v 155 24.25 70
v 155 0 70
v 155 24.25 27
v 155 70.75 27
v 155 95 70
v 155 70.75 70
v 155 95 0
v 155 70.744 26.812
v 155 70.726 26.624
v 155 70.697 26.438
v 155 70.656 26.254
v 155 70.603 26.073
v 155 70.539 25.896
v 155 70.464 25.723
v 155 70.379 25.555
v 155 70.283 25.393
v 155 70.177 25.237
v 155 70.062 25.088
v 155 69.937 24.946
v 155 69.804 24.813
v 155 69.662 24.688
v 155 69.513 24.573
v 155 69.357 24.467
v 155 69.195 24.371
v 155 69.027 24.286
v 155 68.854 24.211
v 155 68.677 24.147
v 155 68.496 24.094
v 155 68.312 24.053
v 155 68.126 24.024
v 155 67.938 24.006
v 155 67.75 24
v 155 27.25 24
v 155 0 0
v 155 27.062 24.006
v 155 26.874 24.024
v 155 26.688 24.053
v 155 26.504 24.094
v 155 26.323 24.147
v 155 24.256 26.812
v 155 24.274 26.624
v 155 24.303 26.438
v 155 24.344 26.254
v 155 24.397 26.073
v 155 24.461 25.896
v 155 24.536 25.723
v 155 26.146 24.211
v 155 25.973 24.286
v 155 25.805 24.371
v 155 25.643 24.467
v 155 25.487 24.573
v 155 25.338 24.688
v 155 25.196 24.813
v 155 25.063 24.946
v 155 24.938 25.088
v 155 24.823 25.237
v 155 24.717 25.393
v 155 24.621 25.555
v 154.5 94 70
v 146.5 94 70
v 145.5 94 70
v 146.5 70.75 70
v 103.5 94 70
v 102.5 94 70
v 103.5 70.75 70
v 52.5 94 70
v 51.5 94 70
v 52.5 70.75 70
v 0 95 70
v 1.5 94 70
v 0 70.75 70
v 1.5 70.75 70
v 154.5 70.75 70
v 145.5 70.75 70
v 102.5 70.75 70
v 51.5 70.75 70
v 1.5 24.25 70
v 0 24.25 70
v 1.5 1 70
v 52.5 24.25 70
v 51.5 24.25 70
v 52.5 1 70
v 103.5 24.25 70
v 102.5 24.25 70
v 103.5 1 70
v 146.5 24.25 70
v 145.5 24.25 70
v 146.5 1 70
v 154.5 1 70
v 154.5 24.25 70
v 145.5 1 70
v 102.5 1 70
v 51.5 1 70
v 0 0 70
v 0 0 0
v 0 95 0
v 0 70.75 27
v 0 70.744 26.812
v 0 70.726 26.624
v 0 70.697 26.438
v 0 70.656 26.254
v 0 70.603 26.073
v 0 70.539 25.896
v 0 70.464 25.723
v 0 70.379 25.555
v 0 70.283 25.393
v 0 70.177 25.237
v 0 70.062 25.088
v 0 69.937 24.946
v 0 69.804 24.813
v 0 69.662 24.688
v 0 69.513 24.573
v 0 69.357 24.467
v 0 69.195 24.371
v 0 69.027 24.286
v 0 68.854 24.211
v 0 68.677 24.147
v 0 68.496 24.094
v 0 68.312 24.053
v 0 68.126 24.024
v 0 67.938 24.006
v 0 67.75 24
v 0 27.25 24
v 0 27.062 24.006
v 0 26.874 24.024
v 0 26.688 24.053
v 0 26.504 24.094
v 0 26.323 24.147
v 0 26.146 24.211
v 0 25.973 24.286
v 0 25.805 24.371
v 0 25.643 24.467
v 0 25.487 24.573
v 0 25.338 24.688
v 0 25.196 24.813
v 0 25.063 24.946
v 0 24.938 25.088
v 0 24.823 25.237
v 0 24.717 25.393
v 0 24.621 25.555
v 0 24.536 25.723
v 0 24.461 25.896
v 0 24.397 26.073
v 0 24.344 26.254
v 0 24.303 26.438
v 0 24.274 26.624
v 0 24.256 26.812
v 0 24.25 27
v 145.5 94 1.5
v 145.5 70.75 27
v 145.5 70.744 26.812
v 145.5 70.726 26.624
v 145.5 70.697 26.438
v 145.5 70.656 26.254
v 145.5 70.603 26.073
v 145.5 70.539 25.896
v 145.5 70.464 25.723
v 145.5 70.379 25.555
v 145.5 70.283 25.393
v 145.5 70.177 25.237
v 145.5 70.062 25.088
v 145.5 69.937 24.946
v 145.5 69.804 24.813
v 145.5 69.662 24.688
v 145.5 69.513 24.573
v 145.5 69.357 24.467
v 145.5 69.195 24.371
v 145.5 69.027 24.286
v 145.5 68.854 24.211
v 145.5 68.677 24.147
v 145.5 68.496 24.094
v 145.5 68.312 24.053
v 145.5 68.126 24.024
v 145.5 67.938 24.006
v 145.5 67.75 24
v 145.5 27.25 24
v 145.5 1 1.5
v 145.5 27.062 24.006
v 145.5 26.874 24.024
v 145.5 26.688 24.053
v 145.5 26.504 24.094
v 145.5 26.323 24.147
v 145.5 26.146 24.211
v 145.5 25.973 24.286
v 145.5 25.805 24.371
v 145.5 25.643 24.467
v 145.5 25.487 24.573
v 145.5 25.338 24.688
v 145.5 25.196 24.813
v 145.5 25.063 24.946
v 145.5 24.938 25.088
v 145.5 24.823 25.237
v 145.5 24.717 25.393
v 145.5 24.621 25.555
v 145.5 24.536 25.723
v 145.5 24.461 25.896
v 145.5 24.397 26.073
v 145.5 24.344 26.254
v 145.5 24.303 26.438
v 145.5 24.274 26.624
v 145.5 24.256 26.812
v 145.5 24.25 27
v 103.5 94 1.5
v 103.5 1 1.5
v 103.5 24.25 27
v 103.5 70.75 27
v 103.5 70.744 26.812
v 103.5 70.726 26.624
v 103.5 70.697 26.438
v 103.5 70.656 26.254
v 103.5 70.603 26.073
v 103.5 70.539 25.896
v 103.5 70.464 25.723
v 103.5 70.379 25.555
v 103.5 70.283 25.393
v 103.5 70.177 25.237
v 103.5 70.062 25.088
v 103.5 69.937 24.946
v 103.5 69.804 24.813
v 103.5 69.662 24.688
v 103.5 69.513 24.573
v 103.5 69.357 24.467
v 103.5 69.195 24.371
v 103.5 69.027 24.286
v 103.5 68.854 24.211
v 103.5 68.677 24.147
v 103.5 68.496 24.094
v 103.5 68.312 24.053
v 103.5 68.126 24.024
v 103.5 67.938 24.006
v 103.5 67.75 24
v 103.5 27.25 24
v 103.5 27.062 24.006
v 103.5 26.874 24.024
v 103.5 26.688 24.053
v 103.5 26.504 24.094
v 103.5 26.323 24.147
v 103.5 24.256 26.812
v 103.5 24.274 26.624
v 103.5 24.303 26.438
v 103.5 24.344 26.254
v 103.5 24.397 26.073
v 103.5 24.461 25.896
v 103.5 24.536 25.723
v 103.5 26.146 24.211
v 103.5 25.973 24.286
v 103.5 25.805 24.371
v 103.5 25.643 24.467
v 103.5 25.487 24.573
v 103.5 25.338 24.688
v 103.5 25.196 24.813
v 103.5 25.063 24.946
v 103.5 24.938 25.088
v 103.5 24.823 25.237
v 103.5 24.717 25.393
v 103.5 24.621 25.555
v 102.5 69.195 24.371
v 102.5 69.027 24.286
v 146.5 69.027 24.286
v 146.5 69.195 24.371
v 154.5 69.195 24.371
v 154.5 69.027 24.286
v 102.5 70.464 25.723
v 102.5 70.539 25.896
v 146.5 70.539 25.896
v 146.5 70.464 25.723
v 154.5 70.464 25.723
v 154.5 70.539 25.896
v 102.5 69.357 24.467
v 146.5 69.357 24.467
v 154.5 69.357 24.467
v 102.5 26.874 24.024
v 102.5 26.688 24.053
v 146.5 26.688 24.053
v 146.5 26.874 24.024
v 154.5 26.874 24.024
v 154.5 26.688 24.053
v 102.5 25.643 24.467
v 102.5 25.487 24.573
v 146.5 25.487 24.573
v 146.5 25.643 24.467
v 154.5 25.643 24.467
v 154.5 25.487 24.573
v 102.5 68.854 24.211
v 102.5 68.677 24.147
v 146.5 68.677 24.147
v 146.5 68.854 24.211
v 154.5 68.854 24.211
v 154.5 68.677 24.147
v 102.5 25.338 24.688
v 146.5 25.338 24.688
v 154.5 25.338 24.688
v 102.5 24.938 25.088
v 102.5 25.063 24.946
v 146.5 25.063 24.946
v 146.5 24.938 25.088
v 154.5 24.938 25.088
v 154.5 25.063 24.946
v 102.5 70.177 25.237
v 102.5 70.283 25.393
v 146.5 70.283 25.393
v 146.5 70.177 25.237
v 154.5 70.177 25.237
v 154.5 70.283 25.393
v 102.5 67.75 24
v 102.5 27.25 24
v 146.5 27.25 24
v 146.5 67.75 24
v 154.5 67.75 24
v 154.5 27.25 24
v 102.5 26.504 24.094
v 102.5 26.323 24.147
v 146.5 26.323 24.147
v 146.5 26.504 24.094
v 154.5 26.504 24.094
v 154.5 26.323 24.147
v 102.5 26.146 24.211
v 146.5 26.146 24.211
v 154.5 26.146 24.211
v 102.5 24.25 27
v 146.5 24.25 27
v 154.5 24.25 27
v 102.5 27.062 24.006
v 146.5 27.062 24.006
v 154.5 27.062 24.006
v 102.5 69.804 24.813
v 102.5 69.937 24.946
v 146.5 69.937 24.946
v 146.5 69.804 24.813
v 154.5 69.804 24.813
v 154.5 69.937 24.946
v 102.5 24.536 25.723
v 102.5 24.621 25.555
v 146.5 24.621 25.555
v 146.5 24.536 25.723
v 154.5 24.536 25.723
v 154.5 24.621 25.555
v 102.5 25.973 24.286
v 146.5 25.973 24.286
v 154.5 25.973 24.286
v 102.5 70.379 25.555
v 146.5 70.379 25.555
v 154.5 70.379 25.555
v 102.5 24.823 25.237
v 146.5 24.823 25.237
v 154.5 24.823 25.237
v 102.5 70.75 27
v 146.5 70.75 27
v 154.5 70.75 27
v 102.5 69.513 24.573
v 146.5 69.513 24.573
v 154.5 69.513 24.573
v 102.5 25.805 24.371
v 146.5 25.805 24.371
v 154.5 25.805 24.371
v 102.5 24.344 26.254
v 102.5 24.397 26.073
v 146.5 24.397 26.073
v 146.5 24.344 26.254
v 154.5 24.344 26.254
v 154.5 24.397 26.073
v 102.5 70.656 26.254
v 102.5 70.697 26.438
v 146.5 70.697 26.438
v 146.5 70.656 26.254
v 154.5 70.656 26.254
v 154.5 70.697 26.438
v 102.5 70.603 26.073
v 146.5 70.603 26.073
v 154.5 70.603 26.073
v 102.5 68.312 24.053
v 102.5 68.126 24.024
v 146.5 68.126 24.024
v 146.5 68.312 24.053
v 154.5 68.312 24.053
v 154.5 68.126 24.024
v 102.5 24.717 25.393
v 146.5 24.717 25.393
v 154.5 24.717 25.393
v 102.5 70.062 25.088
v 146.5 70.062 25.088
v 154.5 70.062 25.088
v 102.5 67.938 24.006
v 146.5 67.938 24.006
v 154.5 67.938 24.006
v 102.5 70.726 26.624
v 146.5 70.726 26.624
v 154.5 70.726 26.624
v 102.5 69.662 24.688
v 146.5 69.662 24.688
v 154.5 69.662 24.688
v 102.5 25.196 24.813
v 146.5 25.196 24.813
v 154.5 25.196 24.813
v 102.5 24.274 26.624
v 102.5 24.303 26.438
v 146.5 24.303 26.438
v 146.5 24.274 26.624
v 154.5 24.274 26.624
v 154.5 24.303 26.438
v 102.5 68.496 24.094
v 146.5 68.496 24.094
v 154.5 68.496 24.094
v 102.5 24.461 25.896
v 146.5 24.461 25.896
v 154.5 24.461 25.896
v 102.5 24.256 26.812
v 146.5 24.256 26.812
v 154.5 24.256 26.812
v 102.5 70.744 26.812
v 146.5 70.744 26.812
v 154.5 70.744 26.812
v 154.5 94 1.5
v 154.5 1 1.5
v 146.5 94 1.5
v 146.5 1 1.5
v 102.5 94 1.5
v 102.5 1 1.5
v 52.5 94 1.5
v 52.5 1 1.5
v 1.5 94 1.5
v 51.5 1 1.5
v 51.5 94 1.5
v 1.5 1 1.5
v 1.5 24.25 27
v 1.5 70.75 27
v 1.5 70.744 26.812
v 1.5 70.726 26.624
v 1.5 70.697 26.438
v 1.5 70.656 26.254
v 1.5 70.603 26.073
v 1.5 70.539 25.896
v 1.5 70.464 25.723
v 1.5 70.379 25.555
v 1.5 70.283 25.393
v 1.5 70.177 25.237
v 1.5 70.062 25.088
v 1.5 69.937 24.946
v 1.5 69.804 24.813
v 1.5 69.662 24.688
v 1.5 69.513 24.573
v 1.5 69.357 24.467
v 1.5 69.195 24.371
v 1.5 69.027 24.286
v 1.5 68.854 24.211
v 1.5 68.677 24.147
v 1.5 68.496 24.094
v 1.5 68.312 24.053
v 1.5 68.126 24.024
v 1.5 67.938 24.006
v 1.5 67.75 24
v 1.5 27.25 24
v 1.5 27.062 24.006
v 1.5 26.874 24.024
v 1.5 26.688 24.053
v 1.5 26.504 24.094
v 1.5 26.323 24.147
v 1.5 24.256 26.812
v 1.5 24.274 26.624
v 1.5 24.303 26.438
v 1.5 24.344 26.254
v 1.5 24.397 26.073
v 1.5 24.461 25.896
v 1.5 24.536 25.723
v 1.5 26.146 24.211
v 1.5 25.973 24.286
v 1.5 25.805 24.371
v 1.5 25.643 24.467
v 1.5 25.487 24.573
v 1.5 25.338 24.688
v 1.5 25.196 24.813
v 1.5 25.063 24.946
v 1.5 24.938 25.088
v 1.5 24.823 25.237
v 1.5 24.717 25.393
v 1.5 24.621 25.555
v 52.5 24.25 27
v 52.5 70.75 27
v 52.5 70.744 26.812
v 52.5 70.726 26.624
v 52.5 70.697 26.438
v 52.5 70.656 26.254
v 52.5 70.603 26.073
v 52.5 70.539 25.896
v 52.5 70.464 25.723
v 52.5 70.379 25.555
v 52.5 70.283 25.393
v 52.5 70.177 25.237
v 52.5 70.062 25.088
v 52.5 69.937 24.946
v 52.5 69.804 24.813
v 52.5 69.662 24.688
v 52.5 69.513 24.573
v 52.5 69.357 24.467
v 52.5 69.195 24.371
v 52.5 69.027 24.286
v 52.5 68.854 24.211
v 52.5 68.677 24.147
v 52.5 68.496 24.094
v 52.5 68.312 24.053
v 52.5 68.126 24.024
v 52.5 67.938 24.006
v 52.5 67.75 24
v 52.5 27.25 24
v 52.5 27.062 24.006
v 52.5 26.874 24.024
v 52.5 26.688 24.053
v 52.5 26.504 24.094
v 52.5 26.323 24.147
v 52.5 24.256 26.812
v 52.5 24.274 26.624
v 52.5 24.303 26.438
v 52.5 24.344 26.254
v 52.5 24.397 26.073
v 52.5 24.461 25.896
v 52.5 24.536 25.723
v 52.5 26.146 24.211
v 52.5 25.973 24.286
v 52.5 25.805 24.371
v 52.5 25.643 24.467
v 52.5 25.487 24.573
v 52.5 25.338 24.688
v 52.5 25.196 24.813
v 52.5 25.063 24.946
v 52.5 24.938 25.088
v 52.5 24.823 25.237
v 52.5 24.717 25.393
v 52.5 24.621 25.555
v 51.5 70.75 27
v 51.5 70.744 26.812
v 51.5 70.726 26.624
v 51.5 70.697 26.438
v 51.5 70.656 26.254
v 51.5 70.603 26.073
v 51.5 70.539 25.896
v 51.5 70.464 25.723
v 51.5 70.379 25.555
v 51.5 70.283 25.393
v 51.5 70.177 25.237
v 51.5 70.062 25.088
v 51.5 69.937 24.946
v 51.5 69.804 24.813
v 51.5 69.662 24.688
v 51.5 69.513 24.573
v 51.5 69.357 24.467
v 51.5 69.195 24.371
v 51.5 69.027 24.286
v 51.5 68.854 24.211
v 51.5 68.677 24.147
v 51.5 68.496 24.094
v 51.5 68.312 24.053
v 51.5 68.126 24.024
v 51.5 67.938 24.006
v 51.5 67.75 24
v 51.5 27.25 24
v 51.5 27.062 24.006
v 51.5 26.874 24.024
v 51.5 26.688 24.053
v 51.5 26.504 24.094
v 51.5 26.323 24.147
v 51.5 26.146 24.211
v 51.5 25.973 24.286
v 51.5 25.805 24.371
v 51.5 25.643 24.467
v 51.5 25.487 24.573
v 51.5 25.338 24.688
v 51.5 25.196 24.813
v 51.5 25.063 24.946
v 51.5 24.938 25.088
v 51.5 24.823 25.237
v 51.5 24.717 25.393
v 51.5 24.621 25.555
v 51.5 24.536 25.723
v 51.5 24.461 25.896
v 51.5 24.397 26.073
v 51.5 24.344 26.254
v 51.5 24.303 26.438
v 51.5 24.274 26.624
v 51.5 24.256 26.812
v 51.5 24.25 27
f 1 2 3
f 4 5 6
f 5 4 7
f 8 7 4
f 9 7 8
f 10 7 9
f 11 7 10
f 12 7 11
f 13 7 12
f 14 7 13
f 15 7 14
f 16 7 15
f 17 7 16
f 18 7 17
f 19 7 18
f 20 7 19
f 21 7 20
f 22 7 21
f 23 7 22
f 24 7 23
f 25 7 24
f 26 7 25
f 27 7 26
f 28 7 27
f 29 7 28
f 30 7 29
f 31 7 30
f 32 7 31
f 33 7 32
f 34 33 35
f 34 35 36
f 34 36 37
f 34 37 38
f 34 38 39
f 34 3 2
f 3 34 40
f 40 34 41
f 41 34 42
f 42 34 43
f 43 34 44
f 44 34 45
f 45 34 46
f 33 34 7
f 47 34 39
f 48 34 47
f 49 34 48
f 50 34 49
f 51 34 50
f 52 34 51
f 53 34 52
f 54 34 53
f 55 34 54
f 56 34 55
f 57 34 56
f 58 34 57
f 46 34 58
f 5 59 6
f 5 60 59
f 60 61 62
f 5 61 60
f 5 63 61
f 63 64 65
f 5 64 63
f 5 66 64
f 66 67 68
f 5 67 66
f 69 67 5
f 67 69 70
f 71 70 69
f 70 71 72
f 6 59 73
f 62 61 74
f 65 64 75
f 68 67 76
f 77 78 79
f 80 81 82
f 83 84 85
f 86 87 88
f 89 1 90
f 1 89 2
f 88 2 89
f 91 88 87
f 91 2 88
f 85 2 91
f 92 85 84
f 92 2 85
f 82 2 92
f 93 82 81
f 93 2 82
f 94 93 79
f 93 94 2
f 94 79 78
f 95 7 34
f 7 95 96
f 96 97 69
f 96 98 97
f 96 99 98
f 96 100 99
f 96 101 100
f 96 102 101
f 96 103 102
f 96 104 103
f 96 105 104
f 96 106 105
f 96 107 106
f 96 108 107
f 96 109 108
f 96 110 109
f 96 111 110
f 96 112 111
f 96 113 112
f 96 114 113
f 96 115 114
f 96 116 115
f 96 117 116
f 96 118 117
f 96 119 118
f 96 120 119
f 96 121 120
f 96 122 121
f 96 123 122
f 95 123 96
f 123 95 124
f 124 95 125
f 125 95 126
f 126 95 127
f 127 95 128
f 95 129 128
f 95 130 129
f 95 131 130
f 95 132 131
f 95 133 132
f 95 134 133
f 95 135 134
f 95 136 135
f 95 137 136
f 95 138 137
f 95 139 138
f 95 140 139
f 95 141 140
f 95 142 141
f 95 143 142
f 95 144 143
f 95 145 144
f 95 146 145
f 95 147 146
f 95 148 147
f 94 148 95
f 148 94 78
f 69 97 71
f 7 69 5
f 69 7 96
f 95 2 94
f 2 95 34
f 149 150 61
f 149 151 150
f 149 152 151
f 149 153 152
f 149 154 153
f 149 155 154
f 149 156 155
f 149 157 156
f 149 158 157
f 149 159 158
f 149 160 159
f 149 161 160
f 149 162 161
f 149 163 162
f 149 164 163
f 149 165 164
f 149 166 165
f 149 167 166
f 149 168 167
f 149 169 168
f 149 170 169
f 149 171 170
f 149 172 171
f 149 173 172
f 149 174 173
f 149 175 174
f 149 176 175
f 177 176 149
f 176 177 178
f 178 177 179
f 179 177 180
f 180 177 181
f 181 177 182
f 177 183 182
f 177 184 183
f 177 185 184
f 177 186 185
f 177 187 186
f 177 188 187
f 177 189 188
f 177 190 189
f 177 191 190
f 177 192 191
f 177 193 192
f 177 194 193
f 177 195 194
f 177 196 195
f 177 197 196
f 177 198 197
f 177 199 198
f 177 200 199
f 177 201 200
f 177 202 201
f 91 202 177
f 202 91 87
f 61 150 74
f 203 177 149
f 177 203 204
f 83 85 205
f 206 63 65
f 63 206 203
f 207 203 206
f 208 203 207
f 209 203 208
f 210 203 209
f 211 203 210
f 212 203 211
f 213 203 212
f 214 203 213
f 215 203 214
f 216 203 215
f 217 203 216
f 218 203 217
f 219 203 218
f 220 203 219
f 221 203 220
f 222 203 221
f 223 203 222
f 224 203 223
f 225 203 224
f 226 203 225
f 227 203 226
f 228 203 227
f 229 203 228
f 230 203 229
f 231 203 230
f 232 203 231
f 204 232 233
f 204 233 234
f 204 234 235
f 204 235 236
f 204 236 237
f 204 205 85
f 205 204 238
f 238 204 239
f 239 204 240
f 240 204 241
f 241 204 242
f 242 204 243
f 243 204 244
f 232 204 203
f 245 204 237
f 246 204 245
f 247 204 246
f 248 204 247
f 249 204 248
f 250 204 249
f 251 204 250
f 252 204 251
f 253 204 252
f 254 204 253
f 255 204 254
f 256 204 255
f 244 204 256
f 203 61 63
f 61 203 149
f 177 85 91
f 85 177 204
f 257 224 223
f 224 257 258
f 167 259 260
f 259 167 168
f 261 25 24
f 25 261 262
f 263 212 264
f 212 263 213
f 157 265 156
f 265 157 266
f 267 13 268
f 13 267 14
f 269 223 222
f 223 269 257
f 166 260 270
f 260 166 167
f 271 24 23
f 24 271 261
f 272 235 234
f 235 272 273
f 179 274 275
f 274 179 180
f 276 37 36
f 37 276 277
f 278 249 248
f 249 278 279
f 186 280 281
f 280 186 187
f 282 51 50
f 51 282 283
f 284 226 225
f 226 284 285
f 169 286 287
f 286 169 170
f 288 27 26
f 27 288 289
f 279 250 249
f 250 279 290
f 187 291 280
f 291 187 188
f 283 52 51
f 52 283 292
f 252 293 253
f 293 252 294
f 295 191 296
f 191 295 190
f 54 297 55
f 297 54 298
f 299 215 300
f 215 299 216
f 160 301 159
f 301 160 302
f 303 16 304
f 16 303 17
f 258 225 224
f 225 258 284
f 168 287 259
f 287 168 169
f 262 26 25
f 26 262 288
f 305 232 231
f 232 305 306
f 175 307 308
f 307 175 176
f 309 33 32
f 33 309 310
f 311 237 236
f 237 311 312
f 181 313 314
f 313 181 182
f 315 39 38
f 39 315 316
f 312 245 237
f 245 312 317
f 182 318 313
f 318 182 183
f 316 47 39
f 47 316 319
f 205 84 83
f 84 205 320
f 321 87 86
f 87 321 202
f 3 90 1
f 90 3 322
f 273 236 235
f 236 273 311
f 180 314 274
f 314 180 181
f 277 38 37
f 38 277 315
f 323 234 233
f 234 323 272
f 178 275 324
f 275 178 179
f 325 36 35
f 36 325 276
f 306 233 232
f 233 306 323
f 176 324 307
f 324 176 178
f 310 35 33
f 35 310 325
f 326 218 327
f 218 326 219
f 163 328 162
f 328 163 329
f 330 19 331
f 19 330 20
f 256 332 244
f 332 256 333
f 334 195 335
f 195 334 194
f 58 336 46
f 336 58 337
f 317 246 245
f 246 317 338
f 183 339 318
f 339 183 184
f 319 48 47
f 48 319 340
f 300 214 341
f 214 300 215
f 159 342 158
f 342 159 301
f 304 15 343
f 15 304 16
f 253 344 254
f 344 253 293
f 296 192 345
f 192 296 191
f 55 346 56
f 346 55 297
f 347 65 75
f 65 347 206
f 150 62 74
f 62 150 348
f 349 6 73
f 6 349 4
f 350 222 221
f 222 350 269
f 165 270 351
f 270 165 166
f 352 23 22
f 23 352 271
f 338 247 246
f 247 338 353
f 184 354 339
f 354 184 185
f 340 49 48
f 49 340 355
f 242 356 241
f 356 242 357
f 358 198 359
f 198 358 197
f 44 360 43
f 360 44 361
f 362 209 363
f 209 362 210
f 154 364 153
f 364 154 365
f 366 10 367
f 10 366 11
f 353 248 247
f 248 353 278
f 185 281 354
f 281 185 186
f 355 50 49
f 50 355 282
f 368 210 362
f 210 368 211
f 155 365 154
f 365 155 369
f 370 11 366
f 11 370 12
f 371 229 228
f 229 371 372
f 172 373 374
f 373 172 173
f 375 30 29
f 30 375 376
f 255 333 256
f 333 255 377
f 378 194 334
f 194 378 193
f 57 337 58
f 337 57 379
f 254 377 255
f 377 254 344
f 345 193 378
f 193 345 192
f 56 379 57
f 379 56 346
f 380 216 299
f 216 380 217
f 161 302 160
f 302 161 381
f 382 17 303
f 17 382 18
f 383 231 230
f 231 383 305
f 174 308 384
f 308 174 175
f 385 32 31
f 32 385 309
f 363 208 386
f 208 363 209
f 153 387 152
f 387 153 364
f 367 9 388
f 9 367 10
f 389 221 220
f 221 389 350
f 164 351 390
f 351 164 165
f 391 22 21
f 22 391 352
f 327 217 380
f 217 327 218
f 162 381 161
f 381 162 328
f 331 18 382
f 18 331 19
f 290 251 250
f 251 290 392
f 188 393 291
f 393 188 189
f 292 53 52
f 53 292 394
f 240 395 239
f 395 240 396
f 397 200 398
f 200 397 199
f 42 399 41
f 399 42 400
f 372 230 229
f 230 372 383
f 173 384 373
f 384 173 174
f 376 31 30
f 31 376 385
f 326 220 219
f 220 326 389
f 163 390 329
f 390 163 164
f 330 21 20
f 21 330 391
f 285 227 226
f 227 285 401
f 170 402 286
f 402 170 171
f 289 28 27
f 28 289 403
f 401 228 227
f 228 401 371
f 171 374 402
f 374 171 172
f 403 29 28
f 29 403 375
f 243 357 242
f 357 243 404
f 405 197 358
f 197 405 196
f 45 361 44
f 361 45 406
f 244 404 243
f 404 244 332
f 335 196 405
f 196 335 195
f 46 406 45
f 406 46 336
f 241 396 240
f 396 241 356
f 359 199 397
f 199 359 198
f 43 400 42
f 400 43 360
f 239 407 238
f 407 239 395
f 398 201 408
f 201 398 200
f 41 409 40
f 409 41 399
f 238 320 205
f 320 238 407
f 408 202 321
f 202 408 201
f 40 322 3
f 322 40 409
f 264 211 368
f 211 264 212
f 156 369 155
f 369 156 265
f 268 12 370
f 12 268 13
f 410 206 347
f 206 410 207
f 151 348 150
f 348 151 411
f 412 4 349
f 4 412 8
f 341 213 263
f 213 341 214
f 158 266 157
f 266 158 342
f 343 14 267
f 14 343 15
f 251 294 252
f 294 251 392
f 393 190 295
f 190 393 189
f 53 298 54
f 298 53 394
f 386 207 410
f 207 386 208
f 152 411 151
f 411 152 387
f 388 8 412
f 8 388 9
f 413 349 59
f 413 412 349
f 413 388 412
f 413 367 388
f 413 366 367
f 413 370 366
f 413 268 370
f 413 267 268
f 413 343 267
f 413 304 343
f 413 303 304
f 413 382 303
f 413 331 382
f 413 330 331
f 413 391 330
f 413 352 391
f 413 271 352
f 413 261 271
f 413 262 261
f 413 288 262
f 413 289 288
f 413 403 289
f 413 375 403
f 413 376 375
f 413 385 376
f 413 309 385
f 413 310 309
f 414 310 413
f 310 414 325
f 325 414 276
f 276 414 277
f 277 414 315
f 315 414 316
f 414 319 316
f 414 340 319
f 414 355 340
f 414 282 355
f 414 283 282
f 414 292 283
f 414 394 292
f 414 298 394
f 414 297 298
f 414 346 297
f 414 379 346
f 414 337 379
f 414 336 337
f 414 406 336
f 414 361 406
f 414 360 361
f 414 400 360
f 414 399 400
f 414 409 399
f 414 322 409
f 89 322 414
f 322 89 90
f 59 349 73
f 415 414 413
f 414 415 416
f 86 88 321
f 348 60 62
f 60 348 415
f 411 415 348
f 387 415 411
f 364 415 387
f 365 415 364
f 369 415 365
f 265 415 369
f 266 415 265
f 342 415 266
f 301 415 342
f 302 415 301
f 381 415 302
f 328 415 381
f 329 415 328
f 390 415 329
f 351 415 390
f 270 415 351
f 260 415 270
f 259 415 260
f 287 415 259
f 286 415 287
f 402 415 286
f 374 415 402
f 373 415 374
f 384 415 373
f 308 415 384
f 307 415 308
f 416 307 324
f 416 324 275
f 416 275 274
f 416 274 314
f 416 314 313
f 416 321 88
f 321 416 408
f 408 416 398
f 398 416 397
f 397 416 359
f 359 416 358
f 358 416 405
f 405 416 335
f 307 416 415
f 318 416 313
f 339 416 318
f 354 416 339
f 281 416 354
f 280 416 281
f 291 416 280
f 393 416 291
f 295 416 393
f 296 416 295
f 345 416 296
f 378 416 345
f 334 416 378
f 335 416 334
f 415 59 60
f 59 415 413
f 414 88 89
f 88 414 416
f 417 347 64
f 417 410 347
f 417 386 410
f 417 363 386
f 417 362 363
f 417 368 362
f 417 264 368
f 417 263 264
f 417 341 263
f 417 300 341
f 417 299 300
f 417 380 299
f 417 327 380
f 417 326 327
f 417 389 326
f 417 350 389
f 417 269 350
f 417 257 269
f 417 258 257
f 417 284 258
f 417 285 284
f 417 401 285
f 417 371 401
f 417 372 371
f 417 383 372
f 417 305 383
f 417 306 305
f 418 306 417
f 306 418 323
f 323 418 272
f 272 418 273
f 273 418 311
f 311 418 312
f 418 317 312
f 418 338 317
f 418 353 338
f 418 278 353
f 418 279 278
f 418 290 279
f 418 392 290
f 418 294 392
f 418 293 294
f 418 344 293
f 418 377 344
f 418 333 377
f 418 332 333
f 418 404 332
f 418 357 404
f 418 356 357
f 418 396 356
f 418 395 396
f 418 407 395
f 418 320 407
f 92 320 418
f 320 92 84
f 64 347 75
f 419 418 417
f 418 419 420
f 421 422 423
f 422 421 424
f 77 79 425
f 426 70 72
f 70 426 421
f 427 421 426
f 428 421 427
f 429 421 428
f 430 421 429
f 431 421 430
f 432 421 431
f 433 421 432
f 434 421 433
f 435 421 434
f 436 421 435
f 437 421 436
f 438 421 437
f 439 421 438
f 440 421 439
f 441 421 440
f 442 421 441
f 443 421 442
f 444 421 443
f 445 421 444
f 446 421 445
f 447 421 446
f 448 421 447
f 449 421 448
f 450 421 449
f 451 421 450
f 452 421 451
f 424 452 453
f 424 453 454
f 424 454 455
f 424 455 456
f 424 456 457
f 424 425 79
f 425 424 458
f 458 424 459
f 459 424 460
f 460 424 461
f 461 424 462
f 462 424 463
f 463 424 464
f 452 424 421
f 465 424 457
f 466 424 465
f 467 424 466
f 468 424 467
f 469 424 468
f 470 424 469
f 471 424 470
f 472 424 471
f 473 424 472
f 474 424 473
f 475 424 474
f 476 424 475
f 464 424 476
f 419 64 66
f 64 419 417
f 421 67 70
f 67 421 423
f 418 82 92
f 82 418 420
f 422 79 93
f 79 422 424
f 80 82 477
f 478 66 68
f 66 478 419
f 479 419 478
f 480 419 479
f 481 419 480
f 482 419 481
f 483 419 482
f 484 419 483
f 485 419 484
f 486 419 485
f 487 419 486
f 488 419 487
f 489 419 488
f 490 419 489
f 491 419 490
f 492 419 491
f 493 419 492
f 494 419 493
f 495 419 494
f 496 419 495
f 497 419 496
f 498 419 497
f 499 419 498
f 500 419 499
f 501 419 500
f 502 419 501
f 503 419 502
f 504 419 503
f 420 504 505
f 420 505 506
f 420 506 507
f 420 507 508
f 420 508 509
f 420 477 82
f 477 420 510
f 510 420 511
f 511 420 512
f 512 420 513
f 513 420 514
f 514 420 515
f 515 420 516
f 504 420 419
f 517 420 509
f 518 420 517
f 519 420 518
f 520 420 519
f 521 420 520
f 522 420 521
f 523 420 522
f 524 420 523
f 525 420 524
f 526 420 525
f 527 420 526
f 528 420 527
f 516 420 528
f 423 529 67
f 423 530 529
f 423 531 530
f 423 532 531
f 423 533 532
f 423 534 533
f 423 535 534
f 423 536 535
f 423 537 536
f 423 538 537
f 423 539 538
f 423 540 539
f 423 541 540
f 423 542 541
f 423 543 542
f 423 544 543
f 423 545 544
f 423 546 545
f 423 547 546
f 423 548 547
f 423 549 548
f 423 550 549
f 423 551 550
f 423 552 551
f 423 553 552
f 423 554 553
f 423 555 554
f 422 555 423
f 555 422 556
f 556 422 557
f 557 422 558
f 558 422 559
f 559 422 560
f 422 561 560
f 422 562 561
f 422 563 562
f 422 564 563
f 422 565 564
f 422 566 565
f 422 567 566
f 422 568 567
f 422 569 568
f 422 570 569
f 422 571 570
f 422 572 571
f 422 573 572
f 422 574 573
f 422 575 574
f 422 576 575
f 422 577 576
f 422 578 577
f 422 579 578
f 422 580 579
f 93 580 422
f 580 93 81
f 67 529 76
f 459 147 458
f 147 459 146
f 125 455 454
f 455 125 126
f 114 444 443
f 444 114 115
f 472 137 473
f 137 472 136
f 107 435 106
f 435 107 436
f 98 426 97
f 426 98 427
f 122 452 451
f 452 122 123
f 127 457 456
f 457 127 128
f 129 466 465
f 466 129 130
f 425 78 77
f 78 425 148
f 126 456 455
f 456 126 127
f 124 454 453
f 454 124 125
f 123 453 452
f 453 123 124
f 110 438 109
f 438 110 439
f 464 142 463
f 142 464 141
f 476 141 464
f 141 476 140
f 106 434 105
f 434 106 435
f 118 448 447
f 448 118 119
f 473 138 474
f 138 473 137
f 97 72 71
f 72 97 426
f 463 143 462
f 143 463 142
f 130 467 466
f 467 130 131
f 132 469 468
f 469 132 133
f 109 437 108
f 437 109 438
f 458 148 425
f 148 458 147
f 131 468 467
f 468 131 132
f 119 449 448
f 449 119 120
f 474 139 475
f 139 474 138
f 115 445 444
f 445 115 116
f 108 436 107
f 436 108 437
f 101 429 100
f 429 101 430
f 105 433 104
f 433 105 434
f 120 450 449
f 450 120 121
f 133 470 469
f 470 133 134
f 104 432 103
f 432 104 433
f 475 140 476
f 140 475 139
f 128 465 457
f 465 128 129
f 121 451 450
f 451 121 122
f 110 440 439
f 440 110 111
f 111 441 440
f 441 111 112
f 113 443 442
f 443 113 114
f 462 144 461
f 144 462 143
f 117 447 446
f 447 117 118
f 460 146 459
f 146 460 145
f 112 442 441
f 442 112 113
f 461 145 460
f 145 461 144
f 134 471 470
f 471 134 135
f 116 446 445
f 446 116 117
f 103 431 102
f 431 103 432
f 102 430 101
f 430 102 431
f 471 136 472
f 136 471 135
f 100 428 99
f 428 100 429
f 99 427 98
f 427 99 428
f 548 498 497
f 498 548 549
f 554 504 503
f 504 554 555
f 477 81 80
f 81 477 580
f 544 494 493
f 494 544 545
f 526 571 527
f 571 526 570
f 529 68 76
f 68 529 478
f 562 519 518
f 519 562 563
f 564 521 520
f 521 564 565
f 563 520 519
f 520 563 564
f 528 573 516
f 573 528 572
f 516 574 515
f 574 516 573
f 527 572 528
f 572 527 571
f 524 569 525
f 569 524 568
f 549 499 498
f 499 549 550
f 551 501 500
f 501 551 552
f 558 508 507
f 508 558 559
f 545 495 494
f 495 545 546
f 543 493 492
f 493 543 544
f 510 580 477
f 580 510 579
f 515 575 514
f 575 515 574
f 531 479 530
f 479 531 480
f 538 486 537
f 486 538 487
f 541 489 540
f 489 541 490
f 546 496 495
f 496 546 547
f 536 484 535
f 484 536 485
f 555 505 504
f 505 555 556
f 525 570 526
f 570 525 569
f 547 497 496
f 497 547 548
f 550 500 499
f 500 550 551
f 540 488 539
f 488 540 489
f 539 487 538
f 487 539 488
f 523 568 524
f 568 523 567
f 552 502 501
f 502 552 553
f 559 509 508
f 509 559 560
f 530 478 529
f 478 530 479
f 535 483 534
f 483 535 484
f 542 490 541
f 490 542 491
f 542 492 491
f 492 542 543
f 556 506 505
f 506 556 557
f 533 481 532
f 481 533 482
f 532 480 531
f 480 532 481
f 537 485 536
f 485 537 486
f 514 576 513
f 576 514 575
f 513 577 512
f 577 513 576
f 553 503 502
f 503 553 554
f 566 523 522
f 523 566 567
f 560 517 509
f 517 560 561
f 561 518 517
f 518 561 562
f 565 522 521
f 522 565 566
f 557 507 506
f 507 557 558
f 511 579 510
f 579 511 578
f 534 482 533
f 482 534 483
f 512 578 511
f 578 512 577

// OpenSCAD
include <boardgame_insert_toolkit_lib.2.scad>;

// determines whether lids are output.
g_b_print_lid = true;

// determines whether boxes are output.
g_b_print_box = true; 

// Focus on one box
g_isolated_print_box = ""; 

// Used to visualize how all of the boxes fit together. 
g_b_visualization = false;          
        
// this is the outer wall thickness. 
//Default = 1.5mm
g_wall_thickness = 1.5;

// The tolerance value is extra space put between planes of the lid and box that fit together.
// Increase the tolerance to loosen the fit and decrease it to tighten it.
//
// Note that the tolerance is applied exclusively to the lid.
// So if the lid is too tight or too loose, change this value ( up for looser fit, down for tighter fit ) and 
// you only need to reprint the lid.
// 
// The exception is the stackable box, where the bottom of the box is the lid of the box below,
// in which case the tolerance also affects that box bottom.
//
g_tolerance = 0.15;

// This adjusts the position of the lid detents downward. 
// The larger the value, the bigger the gap between the lid and the box.
g_tolerance_detents_pos = 0.1;

aw_wall_thickness = 1.0;

aw_c_cards_size = 50;
aw_d_cards_size = 50;
aw_fotm_cards_size = 42;
aw_parent_exp_cards_size = 8;

//aw_size_x = 268.0;
// 155
aw_size_x =
  aw_wall_thickness + // 1
  aw_c_cards_size + // 50
  aw_wall_thickness + // 1
  aw_d_cards_size + // 50
  aw_wall_thickness + // 1
  aw_fotm_cards_size + // 42
  aw_wall_thickness + // 1
  aw_parent_exp_cards_size + // 8
  aw_wall_thickness; // 1

aw_size_y = 95.0;
aw_size_z = 70.0;

aw_cutout_height_pct = 60;

data =
  [
    [
      "simple box",
      [
        [ BOX_SIZE_XYZ, [aw_size_x, aw_size_y, aw_size_z] ],
        [ BOX_NO_LID_B, t],
        // C/D deck cards
        [
          BOX_COMPONENT,
          [
            [
              CMP_COMPARTMENT_SIZE_XYZ,
              [
                aw_c_cards_size,
                aw_size_y - 2 * aw_wall_thickness,
                aw_size_z - aw_wall_thickness
              ]
            ],
            [ CMP_CUTOUT_SIDES_4B, [ f, f, t, t ] ],
            [ CMP_CUTOUT_HEIGHT_PCT, aw_cutout_height_pct ],
            [ CMP_CUTOUT_DEPTH_PCT, 0 ],
            [CMP_NUM_COMPARTMENTS_XY, [2, 1]],
            [
              POSITION_XY,
              [
                0,
                CENTER
              ]
            ]
          ]
        ],
        // Farmers expansion cards
        [
          BOX_COMPONENT,
          [
            [
              CMP_COMPARTMENT_SIZE_XYZ,
              [
                aw_fotm_cards_size,
                aw_size_y - 2 * aw_wall_thickness,
                aw_size_z - aw_wall_thickness
              ]
            ],
            [ CMP_CUTOUT_SIDES_4B, [ f, f, t, t ] ],
            [ CMP_CUTOUT_HEIGHT_PCT, aw_cutout_height_pct ],
            [ CMP_CUTOUT_DEPTH_PCT, 0 ],
            [CMP_NUM_COMPARTMENTS_XY, [1, 1]],
            [
              POSITION_XY,
              [
                2 * (aw_c_cards_size + aw_wall_thickness),
                CENTER
              ]
            ]
          ]
        ],
        // Parent expansion cards (from C/D deck)
        [
          BOX_COMPONENT,
          [
            [
              CMP_COMPARTMENT_SIZE_XYZ,
              [
                aw_parent_exp_cards_size,
                aw_size_y - 2 * aw_wall_thickness,
                aw_size_z - aw_wall_thickness
              ]
            ],
            [ CMP_CUTOUT_SIDES_4B, [ f, f, t, t ] ],
            [ CMP_CUTOUT_HEIGHT_PCT, aw_cutout_height_pct ],
            [ CMP_CUTOUT_DEPTH_PCT, 0 ],
            [CMP_NUM_COMPARTMENTS_XY, [1, 1]],
            [
              POSITION_XY,
              [
                2 * (aw_c_cards_size + aw_wall_thickness) +
                aw_fotm_cards_size +
                aw_wall_thickness,
                CENTER
              ]
            ]
          ]
        ],
      ]
    ]
  ];

MakeAll();
